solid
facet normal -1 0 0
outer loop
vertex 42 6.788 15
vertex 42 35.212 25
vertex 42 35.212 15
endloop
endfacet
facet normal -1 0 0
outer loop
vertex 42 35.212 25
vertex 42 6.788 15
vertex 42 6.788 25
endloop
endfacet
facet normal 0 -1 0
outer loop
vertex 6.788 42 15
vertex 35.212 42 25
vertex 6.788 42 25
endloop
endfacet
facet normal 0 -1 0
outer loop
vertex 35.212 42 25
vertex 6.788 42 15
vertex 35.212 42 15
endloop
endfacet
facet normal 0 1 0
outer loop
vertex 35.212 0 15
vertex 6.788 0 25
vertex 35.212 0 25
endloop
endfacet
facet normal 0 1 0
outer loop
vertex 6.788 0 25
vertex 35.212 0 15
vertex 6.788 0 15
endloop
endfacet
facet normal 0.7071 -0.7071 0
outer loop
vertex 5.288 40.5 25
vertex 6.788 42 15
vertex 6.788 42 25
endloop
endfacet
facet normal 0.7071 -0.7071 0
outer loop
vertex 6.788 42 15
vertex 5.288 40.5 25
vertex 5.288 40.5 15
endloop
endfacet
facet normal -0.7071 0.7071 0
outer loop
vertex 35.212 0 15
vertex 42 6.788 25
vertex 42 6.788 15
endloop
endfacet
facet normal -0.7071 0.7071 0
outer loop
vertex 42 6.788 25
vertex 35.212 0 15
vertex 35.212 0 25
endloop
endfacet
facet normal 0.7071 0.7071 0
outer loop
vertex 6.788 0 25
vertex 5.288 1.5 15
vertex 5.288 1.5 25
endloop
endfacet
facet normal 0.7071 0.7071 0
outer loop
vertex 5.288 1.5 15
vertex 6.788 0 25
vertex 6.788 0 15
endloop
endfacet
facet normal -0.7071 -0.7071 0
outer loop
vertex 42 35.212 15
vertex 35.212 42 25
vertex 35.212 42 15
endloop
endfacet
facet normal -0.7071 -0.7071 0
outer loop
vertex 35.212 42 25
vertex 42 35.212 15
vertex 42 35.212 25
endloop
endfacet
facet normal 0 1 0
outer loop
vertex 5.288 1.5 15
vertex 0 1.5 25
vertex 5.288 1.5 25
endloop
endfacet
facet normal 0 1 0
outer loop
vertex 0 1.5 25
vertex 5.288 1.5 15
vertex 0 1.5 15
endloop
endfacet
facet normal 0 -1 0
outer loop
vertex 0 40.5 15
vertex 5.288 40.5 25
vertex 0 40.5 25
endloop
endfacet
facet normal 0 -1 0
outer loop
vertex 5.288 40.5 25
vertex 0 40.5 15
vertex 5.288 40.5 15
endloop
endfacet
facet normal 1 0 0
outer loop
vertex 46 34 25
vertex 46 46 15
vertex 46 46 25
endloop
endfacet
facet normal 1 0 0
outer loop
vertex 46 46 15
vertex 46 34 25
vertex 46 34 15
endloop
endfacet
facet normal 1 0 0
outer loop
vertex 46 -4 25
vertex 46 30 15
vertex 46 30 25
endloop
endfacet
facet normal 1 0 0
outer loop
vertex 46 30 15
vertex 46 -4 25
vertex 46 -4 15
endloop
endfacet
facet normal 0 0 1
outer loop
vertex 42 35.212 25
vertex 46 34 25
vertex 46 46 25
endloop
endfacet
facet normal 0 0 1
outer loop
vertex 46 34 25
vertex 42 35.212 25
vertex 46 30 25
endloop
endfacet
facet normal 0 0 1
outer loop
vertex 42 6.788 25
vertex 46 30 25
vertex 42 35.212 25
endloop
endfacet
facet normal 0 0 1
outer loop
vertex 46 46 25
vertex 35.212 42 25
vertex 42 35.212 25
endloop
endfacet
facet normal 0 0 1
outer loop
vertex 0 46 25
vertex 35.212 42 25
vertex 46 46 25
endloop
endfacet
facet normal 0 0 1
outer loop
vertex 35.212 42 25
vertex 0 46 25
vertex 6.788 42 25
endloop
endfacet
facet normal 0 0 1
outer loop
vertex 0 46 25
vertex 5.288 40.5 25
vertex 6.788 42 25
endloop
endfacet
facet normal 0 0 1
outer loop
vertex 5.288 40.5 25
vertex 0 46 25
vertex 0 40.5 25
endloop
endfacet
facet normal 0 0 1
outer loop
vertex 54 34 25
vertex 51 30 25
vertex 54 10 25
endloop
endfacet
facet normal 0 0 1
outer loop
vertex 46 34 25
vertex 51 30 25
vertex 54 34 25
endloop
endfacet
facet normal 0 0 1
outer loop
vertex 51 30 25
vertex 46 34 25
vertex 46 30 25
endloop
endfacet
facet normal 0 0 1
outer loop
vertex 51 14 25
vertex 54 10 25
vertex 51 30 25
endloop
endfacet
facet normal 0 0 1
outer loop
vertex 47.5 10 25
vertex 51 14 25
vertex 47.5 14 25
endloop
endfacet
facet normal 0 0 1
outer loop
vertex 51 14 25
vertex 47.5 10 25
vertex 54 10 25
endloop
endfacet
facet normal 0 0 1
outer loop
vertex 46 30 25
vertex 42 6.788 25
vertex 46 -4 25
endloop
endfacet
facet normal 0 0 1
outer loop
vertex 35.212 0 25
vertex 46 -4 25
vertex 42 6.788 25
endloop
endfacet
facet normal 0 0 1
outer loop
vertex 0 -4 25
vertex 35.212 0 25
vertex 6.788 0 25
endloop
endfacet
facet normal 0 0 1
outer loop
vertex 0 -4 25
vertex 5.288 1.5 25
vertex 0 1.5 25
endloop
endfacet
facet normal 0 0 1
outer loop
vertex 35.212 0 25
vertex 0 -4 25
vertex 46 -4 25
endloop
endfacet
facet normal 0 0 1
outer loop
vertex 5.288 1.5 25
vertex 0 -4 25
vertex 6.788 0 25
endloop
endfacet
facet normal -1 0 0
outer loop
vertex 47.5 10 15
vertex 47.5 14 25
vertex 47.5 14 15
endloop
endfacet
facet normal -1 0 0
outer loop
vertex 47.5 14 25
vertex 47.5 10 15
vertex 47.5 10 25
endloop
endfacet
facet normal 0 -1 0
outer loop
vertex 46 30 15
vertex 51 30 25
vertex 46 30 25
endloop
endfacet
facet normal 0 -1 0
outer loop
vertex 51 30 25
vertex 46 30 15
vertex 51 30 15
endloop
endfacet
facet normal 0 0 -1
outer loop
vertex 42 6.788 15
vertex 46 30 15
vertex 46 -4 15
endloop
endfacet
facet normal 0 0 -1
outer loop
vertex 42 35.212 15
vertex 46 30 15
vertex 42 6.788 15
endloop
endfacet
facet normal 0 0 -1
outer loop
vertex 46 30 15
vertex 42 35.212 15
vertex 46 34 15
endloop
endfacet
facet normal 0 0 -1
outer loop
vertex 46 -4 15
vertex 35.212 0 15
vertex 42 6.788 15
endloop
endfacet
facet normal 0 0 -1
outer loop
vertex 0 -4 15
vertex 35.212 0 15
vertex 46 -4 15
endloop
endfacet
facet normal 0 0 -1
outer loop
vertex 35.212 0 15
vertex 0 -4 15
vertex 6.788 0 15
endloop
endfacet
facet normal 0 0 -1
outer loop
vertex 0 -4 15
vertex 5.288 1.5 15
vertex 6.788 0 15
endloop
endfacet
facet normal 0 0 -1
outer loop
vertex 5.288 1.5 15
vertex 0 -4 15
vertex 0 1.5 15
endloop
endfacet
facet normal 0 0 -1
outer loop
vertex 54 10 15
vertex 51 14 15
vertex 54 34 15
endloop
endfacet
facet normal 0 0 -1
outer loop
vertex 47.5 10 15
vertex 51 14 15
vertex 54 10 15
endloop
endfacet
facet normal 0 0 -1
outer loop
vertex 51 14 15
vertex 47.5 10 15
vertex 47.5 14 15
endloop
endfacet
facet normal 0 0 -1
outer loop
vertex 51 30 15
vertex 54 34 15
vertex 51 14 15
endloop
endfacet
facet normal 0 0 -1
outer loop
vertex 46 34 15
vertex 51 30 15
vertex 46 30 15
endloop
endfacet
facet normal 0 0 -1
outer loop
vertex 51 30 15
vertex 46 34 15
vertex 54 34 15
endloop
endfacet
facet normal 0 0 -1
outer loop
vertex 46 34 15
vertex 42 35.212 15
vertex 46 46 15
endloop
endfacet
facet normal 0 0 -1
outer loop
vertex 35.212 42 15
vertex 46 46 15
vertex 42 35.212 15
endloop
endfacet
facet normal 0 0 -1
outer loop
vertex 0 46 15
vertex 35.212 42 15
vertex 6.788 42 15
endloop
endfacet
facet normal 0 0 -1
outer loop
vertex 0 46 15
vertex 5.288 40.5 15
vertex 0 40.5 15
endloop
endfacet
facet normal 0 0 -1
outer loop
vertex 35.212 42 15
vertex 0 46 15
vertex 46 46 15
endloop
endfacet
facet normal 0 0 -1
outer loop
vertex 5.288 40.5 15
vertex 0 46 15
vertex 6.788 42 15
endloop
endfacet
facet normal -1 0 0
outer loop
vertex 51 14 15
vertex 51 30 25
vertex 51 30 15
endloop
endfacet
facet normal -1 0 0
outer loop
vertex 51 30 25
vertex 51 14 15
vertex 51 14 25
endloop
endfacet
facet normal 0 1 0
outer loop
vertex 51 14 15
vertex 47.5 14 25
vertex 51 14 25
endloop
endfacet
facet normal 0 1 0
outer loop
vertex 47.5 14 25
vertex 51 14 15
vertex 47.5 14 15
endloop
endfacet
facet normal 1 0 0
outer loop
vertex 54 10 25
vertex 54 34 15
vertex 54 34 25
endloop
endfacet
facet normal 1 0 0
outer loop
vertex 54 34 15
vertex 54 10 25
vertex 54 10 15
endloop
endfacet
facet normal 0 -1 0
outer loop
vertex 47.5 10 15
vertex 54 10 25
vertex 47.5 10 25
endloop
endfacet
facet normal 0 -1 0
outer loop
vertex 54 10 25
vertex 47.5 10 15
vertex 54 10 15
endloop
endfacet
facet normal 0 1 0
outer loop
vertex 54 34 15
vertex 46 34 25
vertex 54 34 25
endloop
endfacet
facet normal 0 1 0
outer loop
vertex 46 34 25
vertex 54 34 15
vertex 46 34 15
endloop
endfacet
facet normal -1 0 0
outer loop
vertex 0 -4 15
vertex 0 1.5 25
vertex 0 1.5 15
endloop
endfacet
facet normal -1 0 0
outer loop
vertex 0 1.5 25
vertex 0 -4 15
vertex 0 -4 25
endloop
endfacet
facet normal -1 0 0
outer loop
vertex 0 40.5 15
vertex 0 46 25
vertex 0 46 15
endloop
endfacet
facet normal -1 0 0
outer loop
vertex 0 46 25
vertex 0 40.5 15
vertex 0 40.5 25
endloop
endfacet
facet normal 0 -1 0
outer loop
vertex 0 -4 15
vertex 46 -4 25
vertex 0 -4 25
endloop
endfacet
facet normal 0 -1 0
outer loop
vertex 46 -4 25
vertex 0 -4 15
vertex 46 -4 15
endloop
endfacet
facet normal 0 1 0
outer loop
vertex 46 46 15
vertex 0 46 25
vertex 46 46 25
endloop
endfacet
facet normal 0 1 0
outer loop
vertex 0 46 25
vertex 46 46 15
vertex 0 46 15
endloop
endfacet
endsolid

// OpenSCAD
motor_side = 42; 		//	in mm
motor_height = 40;

motor_cap_bot = 9.60;
motor_cap_top = 7.40;
motor_cap_bewel = 6;

motor_mid_bewel = 9.6;

motor_cover_length = 16;
motor_cover_height = 4;
motor_cover_depth = 3;


module bewelcube(side, height, amount)
{
	difference()
	{
		cube([side, side, height]);
		
		union()
		{
			for (s=[0:3]) // all sides
			{
				translate([	(s%2*4-1)*side/2+pow(-1,floor((s-1*floor(s/2)+1)/2)-ceil((s+1)%3/2)+1)*amount/sqrt(8),
							((s-1*floor(s/2)+1)%2*4-1)*side/2+pow(-1,floor((s+1*floor(s/2)-1)/2)-ceil((s+1)%3/2)+1)*amount/sqrt(8),
							0])

				cylinder(r=side, h=height, $fn=4);
			}
		}
	}
}

module motor()
{
	union()
	{
		bewelcube(motor_side, motor_cap_bot, motor_cap_bewel);
		bewelcube(motor_side, motor_height, motor_mid_bewel);
		translate([0,0, motor_height-motor_cap_top])
		bewelcube(motor_side, motor_cap_top, motor_cap_bewel);
		
		translate([motor_side-motor_cover_depth, (motor_side-motor_cover_length)/2, -motor_cover_height])
		cube([motor_cover_depth, motor_cover_length, motor_cover_height]);

	}

}
module wireholder()
{
	difference()
	{
		union()
		{
			//ring
			translate([0, -4, 15])
			cube([motor_side+4, motor_side+8, 10]);
			
			//clamp
			difference()
			{
				translate([motor_side+4, 10, 15])
				cube([8, motor_side-18, 10]);


				translate([motor_side+4, 4, 15])
				union()
				{
					cube([1.5, motor_side-16, 10]);
					translate([0, 10, 0])
					cube([5, motor_side-26, 10]);
				}
			}
		}
		#union()
		{
			translate([-motor_side/2, 1.5, 0])
			cube([motor_side, motor_side-3, motor_height]);

			motor();
		}
	}
}

wireholder();
